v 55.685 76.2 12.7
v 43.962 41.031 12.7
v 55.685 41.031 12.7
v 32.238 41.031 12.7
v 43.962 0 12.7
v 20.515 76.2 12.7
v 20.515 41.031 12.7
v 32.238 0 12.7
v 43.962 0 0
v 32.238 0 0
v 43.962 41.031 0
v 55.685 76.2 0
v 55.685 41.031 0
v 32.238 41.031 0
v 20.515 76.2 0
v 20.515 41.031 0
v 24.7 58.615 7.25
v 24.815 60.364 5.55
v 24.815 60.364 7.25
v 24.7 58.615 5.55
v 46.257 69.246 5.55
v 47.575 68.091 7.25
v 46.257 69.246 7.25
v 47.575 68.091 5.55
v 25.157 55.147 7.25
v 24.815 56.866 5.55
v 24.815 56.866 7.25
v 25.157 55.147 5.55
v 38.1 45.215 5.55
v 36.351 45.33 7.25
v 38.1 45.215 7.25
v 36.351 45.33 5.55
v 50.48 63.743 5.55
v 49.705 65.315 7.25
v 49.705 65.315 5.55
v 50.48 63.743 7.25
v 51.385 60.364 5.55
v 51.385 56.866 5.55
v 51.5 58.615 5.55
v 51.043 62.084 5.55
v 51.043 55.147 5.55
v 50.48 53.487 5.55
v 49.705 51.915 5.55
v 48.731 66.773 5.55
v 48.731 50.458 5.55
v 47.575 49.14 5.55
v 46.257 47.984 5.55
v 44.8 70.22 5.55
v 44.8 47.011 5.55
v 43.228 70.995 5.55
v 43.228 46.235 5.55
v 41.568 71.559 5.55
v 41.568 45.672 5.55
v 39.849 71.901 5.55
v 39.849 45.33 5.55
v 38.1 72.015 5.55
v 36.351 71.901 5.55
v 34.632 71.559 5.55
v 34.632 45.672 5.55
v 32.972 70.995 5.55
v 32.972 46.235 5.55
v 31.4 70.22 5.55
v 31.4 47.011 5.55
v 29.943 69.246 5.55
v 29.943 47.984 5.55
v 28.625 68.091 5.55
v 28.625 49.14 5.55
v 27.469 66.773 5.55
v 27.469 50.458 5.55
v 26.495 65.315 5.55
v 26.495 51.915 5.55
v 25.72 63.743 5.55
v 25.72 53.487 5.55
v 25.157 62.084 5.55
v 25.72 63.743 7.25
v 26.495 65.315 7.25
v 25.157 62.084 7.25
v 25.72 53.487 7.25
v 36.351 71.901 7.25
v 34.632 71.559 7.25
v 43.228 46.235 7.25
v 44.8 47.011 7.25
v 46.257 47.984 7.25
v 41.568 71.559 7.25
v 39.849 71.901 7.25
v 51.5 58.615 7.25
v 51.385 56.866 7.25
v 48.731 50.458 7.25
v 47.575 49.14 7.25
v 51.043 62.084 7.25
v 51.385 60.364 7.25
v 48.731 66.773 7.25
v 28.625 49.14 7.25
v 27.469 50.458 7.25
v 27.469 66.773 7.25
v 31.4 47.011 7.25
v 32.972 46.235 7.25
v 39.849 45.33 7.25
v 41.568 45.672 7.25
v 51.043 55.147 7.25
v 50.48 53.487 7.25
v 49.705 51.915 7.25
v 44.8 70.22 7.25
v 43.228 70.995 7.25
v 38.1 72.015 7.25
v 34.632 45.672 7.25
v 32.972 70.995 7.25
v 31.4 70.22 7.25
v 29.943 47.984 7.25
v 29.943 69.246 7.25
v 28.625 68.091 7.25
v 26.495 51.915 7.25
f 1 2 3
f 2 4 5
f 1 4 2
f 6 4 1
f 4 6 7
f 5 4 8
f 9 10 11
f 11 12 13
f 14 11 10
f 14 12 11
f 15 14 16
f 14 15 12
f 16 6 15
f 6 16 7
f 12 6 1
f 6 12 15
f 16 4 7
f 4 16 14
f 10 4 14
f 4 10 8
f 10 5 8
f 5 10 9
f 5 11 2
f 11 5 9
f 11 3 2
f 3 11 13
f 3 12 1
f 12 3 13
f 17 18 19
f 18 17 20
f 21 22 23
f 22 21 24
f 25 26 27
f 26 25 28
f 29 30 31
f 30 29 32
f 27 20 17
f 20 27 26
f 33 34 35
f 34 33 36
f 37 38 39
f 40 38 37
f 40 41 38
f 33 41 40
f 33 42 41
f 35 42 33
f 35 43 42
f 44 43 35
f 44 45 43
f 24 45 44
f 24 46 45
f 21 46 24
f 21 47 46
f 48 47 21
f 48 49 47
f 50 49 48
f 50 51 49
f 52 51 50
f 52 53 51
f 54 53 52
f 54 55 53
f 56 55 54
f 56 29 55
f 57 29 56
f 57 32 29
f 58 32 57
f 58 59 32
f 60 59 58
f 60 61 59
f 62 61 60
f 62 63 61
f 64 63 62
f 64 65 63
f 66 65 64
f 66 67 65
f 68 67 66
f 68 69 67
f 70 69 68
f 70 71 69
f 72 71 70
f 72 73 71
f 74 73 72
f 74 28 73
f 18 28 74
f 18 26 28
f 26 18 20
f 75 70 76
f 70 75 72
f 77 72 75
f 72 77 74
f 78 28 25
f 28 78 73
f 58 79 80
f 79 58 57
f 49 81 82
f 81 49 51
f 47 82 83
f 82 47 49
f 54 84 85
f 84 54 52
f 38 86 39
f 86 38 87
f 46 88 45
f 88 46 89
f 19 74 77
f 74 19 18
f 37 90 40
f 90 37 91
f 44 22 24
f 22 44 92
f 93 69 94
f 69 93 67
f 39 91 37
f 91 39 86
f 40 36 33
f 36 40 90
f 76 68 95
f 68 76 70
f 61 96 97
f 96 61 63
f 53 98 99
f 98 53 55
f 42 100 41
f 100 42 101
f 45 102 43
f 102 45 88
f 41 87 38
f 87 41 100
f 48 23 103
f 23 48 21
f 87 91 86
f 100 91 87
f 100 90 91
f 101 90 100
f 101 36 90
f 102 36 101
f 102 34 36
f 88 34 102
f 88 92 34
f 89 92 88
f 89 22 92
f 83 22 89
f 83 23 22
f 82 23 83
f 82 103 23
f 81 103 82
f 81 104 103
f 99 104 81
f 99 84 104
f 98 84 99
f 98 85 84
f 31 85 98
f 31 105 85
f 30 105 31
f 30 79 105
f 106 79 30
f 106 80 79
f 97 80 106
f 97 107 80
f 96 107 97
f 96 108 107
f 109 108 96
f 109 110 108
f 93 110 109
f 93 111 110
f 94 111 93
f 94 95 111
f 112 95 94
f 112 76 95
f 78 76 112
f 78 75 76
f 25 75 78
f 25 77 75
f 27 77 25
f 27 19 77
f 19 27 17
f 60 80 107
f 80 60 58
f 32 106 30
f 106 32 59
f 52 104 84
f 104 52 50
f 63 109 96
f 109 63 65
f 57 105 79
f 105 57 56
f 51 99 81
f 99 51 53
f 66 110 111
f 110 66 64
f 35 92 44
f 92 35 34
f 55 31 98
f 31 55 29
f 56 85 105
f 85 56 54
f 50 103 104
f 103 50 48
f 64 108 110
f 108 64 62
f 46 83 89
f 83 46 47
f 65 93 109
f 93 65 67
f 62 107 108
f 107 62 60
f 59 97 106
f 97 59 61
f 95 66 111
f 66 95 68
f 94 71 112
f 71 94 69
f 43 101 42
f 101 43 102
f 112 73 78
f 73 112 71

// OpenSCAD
// tripwire_hook — Minecraft Item Shape 3D Model
// Auto-generated from minecraft/textures/item/tripwire_hook.png
//
// Open in OpenSCAD → F5 preview → F6 render → F7 export STL

// ============================================================
// PARAMETERS
// ============================================================

GRID_SIZE_IN    = 3.0;           // crafting table slot size
PIXELS          = 13;              // grid divisions (shape-fitted)
PIXEL_MM        = (GRID_SIZE_IN * 25.4) / PIXELS;  // mm per pixel

DEPTH_IN        = 0.5;          // extrusion depth in inches
DEPTH_MM        = DEPTH_IN * 25.4;

// NFC tag (NTAG215 25mm coin)
TAG_DIAMETER    = 26;           // mm — slightly oversized for easy drop-in
TAG_THICKNESS   = 1.2;         // mm
TAG_CLEARANCE   = 0.4;         // mm extra around tag

cavity_d = TAG_DIAMETER + TAG_CLEARANCE * 2;
cavity_h = TAG_THICKNESS + TAG_CLEARANCE;

echo(str("Tag cavity: ", cavity_d, "mm dia × ", cavity_h, "mm deep"));
echo(str("PAUSE AT: ", DEPTH_MM / 2 + cavity_h / 2, "mm to insert tag"));

module tag_cavity() {
    cx = (6.0 + 0.5) * PIXEL_MM;
    cy = (PIXELS - 1 - 2.5 + 0.5) * PIXEL_MM;
    translate([cx, cy, DEPTH_MM / 2 - cavity_h / 2])
        cylinder(d = cavity_d, h = cavity_h + 0.1, $fn = 48);
}

module tag_shelf() {
    cx = (6.0 + 0.5) * PIXEL_MM;
    cy = (PIXELS - 1 - 2.5 + 0.5) * PIXEL_MM;
    translate([cx, cy, DEPTH_MM / 2 - cavity_h / 2 - 1.0])
        cylinder(d = cavity_d + 4, h = 1.0, $fn = 48);
}

echo(str("Pixel size: ", PIXEL_MM, "mm"));
echo(str("Footprint: ", PIXELS * PIXEL_MM, "mm = ", GRID_SIZE_IN, " in"));
echo(str("Depth: ", DEPTH_MM, "mm = ", DEPTH_IN, " in"));

// ============================================================
// PIXEL MAP — 46 opaque pixels + filled key head for NFC tag
// ============================================================

item_pixels = [
    [3.5,0.0], [3.5,1.0], [3.5,2.0], [3.5,3.0], [3.5,4.0], [3.5,5.0], [4.5,0.0], [4.5,1.0],
    [4.5,2.0], [4.5,3.0], [4.5,4.0], [4.5,5.0], [5.5,0.0], [5.5,1.0], [5.5,2.0], [5.5,3.0],
    [5.5,4.0], [5.5,5.0],
    [5.5,6.0], [5.5,7.0], [5.5,8.0], [5.5,9.0], [5.5,10.0], [5.5,11.0], [5.5,12.0], [6.5,0.0],
    [6.5,1.0], [6.5,2.0], [6.5,3.0], [6.5,4.0], [6.5,5.0], [6.5,6.0], [6.5,7.0], [6.5,8.0],
    [6.5,9.0], [6.5,10.0],
    [6.5,11.0], [6.5,12.0], [7.5,0.0], [7.5,1.0], [7.5,2.0], [7.5,3.0], [7.5,4.0], [7.5,5.0],
    [8.5,0.0], [8.5,1.0], [8.5,2.0], [8.5,3.0], [8.5,4.0], [8.5,5.0]
];

// ============================================================
// MODULES
// ============================================================

module pixel_block(col, row) {
    translate([col * PIXEL_MM, (PIXELS - 1 - row) * PIXEL_MM, 0])
        cube([PIXEL_MM, PIXEL_MM, DEPTH_MM]);
}

module item_shape() {
    for (i = [0 : len(item_pixels) - 1])
        pixel_block(item_pixels[i][0], item_pixels[i][1]);
}

module item_final() {
    difference() {
        union() {
            item_shape();
            intersection() {
                item_shape();
                tag_shelf();
            }
        }
        tag_cavity();
    }
}

item_final();

// Cross-section view (uncomment to see tag cavity):
// difference() {
//     item_final();
//     translate([8 * PIXEL_MM + 50, 0, 0])
//         cube([100, 200, 100]);
// }
